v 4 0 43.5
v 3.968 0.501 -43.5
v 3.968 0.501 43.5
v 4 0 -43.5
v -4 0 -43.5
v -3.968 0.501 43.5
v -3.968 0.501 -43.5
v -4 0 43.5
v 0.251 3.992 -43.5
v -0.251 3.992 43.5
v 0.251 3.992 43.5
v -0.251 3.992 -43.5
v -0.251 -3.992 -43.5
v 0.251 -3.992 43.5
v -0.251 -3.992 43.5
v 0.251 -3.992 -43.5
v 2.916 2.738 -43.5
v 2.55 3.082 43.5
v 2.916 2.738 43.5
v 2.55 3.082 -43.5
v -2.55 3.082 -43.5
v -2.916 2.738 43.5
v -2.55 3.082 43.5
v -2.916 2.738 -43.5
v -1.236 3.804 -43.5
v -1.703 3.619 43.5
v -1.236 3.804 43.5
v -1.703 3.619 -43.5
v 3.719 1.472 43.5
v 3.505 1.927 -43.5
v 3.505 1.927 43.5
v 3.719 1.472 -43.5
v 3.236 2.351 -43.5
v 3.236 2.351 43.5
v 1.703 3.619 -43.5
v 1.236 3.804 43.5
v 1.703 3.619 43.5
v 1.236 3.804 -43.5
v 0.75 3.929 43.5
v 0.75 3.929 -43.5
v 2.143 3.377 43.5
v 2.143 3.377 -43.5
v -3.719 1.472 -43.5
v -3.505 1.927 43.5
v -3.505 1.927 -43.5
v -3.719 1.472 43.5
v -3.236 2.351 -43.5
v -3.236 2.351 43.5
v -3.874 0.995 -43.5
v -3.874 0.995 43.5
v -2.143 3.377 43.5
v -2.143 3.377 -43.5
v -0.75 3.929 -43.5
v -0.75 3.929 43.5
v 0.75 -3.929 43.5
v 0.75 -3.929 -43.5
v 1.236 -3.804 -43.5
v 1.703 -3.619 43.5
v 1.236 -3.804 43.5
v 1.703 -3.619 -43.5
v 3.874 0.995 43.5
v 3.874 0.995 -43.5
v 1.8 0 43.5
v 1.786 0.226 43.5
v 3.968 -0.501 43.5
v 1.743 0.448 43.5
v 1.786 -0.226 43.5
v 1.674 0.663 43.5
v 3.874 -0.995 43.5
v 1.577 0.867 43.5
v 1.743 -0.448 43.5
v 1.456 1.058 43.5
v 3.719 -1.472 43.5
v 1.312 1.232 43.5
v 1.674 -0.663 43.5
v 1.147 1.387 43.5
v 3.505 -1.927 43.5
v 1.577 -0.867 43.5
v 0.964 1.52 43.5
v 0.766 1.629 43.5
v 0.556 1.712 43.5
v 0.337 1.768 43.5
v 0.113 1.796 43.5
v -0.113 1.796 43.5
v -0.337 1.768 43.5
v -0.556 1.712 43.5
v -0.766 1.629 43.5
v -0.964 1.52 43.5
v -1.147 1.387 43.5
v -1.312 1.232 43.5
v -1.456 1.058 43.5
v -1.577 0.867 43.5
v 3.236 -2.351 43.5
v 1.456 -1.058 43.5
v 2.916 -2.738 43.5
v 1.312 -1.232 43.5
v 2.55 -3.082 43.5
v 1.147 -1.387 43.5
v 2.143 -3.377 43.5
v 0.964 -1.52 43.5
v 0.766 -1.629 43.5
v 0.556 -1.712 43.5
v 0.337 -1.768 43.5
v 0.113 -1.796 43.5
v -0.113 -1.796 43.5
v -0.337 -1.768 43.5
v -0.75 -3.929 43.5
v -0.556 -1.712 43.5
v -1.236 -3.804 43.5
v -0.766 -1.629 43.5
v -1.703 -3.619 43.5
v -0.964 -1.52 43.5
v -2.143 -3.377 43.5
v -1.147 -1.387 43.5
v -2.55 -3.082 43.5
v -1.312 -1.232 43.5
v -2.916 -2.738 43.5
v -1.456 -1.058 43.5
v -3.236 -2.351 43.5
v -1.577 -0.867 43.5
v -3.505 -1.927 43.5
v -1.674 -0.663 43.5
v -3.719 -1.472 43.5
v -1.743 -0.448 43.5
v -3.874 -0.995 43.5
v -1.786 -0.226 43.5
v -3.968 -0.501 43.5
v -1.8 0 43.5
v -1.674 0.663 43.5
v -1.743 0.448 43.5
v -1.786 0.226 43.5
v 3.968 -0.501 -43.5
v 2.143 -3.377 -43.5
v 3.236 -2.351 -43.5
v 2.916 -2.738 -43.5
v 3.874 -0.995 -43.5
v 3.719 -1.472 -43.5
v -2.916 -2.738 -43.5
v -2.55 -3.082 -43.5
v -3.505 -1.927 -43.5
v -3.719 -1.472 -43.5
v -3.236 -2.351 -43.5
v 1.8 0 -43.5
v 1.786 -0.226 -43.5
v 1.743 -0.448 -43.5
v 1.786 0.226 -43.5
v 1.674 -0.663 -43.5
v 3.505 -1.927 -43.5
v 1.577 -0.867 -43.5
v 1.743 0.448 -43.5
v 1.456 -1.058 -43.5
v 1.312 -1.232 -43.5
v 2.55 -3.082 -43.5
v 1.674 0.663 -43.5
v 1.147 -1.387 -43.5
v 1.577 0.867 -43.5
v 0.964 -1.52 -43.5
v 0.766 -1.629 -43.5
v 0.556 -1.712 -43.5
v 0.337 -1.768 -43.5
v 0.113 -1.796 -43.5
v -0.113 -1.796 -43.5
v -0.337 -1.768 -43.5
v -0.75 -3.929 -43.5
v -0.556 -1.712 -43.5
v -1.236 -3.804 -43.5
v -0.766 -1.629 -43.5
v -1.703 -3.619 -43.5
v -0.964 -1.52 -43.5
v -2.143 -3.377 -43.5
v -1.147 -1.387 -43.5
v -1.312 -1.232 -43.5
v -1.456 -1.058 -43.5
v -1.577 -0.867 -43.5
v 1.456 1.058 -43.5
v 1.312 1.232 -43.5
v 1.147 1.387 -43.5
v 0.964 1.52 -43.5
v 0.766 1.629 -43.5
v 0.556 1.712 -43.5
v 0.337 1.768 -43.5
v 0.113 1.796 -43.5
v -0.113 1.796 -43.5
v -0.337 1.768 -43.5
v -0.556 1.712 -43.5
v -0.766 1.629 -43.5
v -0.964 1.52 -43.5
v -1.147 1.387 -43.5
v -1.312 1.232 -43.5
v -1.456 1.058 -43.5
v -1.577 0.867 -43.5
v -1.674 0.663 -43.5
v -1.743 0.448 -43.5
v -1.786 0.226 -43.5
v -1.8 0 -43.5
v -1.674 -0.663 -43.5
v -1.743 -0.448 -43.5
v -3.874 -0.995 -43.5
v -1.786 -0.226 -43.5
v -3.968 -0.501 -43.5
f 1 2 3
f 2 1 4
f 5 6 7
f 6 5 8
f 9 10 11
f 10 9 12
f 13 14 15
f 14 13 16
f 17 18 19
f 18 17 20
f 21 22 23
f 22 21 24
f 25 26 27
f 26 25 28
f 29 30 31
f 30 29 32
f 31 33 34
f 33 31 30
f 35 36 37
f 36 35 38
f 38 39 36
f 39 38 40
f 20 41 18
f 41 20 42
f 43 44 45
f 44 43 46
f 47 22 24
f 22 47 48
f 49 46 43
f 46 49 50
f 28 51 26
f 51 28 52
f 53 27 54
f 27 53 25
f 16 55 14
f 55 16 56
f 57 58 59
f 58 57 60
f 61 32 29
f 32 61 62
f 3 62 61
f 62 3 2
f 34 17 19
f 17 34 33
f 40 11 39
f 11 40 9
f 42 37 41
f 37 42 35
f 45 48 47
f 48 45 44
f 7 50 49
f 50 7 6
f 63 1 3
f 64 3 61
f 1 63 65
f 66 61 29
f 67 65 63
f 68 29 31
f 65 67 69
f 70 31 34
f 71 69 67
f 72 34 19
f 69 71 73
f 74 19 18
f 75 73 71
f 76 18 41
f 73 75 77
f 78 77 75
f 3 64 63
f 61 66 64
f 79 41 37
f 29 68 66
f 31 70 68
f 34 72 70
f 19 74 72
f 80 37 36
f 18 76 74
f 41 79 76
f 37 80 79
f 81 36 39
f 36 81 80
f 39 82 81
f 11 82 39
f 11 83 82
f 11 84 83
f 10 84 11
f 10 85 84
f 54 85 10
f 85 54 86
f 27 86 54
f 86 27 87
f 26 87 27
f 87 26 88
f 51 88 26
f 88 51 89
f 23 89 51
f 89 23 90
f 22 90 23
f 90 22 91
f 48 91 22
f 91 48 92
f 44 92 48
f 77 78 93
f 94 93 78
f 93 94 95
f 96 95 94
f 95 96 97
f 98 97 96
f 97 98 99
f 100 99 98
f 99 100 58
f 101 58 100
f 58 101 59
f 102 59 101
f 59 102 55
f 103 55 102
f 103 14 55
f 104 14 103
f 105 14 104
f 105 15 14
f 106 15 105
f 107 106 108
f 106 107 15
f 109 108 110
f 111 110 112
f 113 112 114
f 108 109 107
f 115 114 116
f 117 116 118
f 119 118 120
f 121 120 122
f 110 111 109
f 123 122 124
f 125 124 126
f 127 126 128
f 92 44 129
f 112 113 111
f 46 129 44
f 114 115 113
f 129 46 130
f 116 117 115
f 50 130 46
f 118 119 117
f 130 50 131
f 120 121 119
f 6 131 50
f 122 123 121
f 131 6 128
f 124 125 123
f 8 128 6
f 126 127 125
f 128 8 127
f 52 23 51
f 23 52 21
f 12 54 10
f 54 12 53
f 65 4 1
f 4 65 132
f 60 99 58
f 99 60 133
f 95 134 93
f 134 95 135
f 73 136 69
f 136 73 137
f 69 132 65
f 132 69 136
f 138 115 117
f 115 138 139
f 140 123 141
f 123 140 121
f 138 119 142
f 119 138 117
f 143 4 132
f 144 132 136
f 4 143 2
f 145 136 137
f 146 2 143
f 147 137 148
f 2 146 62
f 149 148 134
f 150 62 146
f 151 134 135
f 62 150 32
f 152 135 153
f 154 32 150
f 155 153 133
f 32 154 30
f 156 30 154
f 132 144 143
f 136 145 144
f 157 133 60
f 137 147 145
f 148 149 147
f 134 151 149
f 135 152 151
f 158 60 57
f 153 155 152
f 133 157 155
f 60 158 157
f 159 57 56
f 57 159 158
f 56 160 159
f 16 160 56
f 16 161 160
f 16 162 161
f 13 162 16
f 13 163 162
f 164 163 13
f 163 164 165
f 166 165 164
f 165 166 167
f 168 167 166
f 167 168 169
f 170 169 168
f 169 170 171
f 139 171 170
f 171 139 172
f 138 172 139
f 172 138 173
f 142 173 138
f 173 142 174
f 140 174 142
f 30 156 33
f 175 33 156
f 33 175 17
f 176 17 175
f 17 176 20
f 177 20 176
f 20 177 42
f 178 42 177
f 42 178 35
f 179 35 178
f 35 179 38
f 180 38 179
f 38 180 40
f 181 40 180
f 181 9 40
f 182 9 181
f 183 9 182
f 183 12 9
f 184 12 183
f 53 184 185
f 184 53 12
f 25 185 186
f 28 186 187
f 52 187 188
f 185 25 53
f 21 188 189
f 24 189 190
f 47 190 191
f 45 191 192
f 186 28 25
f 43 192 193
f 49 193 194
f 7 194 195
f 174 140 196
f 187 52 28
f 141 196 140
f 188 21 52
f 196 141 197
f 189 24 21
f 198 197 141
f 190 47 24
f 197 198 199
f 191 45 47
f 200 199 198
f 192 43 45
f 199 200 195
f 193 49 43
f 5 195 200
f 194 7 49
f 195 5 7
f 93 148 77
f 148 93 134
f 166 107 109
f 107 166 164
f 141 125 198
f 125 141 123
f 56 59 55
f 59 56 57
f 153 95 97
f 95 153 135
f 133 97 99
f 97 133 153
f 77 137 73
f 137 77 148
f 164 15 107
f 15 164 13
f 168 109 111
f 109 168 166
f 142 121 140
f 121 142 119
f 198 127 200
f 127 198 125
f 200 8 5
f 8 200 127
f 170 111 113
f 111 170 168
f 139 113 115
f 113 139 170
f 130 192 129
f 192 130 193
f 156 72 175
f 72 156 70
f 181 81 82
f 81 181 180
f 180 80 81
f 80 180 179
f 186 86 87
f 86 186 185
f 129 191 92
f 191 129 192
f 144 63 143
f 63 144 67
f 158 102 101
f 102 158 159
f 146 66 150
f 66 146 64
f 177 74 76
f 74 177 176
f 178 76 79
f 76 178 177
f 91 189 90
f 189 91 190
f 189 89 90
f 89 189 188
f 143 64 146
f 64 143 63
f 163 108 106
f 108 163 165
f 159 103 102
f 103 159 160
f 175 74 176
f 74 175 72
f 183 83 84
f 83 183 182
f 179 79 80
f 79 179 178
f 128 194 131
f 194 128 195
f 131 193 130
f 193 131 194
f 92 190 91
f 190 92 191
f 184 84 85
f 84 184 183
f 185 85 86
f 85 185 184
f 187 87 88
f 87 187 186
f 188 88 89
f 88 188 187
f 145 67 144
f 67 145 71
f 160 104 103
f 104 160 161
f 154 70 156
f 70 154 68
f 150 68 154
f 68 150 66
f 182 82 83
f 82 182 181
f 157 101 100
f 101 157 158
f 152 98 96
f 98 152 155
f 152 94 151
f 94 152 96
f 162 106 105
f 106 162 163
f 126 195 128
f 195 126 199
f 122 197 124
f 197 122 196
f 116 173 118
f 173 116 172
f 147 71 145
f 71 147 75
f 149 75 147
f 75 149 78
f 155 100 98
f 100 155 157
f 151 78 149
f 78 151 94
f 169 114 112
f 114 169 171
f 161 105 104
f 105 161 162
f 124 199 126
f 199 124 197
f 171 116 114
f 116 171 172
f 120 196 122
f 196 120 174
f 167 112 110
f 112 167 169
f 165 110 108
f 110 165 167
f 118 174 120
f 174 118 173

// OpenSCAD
$fn = 50;


difference() {
	union() {
		translate(v = [0, 0, -43.5000000000]) {
			cylinder(h = 87, r = 4.0000000000);
		}
	}
	union() {
		translate(v = [0, 0, -100.0000000000]) {
			cylinder(h = 200, r = 1.8000000000);
		}
	}
}
